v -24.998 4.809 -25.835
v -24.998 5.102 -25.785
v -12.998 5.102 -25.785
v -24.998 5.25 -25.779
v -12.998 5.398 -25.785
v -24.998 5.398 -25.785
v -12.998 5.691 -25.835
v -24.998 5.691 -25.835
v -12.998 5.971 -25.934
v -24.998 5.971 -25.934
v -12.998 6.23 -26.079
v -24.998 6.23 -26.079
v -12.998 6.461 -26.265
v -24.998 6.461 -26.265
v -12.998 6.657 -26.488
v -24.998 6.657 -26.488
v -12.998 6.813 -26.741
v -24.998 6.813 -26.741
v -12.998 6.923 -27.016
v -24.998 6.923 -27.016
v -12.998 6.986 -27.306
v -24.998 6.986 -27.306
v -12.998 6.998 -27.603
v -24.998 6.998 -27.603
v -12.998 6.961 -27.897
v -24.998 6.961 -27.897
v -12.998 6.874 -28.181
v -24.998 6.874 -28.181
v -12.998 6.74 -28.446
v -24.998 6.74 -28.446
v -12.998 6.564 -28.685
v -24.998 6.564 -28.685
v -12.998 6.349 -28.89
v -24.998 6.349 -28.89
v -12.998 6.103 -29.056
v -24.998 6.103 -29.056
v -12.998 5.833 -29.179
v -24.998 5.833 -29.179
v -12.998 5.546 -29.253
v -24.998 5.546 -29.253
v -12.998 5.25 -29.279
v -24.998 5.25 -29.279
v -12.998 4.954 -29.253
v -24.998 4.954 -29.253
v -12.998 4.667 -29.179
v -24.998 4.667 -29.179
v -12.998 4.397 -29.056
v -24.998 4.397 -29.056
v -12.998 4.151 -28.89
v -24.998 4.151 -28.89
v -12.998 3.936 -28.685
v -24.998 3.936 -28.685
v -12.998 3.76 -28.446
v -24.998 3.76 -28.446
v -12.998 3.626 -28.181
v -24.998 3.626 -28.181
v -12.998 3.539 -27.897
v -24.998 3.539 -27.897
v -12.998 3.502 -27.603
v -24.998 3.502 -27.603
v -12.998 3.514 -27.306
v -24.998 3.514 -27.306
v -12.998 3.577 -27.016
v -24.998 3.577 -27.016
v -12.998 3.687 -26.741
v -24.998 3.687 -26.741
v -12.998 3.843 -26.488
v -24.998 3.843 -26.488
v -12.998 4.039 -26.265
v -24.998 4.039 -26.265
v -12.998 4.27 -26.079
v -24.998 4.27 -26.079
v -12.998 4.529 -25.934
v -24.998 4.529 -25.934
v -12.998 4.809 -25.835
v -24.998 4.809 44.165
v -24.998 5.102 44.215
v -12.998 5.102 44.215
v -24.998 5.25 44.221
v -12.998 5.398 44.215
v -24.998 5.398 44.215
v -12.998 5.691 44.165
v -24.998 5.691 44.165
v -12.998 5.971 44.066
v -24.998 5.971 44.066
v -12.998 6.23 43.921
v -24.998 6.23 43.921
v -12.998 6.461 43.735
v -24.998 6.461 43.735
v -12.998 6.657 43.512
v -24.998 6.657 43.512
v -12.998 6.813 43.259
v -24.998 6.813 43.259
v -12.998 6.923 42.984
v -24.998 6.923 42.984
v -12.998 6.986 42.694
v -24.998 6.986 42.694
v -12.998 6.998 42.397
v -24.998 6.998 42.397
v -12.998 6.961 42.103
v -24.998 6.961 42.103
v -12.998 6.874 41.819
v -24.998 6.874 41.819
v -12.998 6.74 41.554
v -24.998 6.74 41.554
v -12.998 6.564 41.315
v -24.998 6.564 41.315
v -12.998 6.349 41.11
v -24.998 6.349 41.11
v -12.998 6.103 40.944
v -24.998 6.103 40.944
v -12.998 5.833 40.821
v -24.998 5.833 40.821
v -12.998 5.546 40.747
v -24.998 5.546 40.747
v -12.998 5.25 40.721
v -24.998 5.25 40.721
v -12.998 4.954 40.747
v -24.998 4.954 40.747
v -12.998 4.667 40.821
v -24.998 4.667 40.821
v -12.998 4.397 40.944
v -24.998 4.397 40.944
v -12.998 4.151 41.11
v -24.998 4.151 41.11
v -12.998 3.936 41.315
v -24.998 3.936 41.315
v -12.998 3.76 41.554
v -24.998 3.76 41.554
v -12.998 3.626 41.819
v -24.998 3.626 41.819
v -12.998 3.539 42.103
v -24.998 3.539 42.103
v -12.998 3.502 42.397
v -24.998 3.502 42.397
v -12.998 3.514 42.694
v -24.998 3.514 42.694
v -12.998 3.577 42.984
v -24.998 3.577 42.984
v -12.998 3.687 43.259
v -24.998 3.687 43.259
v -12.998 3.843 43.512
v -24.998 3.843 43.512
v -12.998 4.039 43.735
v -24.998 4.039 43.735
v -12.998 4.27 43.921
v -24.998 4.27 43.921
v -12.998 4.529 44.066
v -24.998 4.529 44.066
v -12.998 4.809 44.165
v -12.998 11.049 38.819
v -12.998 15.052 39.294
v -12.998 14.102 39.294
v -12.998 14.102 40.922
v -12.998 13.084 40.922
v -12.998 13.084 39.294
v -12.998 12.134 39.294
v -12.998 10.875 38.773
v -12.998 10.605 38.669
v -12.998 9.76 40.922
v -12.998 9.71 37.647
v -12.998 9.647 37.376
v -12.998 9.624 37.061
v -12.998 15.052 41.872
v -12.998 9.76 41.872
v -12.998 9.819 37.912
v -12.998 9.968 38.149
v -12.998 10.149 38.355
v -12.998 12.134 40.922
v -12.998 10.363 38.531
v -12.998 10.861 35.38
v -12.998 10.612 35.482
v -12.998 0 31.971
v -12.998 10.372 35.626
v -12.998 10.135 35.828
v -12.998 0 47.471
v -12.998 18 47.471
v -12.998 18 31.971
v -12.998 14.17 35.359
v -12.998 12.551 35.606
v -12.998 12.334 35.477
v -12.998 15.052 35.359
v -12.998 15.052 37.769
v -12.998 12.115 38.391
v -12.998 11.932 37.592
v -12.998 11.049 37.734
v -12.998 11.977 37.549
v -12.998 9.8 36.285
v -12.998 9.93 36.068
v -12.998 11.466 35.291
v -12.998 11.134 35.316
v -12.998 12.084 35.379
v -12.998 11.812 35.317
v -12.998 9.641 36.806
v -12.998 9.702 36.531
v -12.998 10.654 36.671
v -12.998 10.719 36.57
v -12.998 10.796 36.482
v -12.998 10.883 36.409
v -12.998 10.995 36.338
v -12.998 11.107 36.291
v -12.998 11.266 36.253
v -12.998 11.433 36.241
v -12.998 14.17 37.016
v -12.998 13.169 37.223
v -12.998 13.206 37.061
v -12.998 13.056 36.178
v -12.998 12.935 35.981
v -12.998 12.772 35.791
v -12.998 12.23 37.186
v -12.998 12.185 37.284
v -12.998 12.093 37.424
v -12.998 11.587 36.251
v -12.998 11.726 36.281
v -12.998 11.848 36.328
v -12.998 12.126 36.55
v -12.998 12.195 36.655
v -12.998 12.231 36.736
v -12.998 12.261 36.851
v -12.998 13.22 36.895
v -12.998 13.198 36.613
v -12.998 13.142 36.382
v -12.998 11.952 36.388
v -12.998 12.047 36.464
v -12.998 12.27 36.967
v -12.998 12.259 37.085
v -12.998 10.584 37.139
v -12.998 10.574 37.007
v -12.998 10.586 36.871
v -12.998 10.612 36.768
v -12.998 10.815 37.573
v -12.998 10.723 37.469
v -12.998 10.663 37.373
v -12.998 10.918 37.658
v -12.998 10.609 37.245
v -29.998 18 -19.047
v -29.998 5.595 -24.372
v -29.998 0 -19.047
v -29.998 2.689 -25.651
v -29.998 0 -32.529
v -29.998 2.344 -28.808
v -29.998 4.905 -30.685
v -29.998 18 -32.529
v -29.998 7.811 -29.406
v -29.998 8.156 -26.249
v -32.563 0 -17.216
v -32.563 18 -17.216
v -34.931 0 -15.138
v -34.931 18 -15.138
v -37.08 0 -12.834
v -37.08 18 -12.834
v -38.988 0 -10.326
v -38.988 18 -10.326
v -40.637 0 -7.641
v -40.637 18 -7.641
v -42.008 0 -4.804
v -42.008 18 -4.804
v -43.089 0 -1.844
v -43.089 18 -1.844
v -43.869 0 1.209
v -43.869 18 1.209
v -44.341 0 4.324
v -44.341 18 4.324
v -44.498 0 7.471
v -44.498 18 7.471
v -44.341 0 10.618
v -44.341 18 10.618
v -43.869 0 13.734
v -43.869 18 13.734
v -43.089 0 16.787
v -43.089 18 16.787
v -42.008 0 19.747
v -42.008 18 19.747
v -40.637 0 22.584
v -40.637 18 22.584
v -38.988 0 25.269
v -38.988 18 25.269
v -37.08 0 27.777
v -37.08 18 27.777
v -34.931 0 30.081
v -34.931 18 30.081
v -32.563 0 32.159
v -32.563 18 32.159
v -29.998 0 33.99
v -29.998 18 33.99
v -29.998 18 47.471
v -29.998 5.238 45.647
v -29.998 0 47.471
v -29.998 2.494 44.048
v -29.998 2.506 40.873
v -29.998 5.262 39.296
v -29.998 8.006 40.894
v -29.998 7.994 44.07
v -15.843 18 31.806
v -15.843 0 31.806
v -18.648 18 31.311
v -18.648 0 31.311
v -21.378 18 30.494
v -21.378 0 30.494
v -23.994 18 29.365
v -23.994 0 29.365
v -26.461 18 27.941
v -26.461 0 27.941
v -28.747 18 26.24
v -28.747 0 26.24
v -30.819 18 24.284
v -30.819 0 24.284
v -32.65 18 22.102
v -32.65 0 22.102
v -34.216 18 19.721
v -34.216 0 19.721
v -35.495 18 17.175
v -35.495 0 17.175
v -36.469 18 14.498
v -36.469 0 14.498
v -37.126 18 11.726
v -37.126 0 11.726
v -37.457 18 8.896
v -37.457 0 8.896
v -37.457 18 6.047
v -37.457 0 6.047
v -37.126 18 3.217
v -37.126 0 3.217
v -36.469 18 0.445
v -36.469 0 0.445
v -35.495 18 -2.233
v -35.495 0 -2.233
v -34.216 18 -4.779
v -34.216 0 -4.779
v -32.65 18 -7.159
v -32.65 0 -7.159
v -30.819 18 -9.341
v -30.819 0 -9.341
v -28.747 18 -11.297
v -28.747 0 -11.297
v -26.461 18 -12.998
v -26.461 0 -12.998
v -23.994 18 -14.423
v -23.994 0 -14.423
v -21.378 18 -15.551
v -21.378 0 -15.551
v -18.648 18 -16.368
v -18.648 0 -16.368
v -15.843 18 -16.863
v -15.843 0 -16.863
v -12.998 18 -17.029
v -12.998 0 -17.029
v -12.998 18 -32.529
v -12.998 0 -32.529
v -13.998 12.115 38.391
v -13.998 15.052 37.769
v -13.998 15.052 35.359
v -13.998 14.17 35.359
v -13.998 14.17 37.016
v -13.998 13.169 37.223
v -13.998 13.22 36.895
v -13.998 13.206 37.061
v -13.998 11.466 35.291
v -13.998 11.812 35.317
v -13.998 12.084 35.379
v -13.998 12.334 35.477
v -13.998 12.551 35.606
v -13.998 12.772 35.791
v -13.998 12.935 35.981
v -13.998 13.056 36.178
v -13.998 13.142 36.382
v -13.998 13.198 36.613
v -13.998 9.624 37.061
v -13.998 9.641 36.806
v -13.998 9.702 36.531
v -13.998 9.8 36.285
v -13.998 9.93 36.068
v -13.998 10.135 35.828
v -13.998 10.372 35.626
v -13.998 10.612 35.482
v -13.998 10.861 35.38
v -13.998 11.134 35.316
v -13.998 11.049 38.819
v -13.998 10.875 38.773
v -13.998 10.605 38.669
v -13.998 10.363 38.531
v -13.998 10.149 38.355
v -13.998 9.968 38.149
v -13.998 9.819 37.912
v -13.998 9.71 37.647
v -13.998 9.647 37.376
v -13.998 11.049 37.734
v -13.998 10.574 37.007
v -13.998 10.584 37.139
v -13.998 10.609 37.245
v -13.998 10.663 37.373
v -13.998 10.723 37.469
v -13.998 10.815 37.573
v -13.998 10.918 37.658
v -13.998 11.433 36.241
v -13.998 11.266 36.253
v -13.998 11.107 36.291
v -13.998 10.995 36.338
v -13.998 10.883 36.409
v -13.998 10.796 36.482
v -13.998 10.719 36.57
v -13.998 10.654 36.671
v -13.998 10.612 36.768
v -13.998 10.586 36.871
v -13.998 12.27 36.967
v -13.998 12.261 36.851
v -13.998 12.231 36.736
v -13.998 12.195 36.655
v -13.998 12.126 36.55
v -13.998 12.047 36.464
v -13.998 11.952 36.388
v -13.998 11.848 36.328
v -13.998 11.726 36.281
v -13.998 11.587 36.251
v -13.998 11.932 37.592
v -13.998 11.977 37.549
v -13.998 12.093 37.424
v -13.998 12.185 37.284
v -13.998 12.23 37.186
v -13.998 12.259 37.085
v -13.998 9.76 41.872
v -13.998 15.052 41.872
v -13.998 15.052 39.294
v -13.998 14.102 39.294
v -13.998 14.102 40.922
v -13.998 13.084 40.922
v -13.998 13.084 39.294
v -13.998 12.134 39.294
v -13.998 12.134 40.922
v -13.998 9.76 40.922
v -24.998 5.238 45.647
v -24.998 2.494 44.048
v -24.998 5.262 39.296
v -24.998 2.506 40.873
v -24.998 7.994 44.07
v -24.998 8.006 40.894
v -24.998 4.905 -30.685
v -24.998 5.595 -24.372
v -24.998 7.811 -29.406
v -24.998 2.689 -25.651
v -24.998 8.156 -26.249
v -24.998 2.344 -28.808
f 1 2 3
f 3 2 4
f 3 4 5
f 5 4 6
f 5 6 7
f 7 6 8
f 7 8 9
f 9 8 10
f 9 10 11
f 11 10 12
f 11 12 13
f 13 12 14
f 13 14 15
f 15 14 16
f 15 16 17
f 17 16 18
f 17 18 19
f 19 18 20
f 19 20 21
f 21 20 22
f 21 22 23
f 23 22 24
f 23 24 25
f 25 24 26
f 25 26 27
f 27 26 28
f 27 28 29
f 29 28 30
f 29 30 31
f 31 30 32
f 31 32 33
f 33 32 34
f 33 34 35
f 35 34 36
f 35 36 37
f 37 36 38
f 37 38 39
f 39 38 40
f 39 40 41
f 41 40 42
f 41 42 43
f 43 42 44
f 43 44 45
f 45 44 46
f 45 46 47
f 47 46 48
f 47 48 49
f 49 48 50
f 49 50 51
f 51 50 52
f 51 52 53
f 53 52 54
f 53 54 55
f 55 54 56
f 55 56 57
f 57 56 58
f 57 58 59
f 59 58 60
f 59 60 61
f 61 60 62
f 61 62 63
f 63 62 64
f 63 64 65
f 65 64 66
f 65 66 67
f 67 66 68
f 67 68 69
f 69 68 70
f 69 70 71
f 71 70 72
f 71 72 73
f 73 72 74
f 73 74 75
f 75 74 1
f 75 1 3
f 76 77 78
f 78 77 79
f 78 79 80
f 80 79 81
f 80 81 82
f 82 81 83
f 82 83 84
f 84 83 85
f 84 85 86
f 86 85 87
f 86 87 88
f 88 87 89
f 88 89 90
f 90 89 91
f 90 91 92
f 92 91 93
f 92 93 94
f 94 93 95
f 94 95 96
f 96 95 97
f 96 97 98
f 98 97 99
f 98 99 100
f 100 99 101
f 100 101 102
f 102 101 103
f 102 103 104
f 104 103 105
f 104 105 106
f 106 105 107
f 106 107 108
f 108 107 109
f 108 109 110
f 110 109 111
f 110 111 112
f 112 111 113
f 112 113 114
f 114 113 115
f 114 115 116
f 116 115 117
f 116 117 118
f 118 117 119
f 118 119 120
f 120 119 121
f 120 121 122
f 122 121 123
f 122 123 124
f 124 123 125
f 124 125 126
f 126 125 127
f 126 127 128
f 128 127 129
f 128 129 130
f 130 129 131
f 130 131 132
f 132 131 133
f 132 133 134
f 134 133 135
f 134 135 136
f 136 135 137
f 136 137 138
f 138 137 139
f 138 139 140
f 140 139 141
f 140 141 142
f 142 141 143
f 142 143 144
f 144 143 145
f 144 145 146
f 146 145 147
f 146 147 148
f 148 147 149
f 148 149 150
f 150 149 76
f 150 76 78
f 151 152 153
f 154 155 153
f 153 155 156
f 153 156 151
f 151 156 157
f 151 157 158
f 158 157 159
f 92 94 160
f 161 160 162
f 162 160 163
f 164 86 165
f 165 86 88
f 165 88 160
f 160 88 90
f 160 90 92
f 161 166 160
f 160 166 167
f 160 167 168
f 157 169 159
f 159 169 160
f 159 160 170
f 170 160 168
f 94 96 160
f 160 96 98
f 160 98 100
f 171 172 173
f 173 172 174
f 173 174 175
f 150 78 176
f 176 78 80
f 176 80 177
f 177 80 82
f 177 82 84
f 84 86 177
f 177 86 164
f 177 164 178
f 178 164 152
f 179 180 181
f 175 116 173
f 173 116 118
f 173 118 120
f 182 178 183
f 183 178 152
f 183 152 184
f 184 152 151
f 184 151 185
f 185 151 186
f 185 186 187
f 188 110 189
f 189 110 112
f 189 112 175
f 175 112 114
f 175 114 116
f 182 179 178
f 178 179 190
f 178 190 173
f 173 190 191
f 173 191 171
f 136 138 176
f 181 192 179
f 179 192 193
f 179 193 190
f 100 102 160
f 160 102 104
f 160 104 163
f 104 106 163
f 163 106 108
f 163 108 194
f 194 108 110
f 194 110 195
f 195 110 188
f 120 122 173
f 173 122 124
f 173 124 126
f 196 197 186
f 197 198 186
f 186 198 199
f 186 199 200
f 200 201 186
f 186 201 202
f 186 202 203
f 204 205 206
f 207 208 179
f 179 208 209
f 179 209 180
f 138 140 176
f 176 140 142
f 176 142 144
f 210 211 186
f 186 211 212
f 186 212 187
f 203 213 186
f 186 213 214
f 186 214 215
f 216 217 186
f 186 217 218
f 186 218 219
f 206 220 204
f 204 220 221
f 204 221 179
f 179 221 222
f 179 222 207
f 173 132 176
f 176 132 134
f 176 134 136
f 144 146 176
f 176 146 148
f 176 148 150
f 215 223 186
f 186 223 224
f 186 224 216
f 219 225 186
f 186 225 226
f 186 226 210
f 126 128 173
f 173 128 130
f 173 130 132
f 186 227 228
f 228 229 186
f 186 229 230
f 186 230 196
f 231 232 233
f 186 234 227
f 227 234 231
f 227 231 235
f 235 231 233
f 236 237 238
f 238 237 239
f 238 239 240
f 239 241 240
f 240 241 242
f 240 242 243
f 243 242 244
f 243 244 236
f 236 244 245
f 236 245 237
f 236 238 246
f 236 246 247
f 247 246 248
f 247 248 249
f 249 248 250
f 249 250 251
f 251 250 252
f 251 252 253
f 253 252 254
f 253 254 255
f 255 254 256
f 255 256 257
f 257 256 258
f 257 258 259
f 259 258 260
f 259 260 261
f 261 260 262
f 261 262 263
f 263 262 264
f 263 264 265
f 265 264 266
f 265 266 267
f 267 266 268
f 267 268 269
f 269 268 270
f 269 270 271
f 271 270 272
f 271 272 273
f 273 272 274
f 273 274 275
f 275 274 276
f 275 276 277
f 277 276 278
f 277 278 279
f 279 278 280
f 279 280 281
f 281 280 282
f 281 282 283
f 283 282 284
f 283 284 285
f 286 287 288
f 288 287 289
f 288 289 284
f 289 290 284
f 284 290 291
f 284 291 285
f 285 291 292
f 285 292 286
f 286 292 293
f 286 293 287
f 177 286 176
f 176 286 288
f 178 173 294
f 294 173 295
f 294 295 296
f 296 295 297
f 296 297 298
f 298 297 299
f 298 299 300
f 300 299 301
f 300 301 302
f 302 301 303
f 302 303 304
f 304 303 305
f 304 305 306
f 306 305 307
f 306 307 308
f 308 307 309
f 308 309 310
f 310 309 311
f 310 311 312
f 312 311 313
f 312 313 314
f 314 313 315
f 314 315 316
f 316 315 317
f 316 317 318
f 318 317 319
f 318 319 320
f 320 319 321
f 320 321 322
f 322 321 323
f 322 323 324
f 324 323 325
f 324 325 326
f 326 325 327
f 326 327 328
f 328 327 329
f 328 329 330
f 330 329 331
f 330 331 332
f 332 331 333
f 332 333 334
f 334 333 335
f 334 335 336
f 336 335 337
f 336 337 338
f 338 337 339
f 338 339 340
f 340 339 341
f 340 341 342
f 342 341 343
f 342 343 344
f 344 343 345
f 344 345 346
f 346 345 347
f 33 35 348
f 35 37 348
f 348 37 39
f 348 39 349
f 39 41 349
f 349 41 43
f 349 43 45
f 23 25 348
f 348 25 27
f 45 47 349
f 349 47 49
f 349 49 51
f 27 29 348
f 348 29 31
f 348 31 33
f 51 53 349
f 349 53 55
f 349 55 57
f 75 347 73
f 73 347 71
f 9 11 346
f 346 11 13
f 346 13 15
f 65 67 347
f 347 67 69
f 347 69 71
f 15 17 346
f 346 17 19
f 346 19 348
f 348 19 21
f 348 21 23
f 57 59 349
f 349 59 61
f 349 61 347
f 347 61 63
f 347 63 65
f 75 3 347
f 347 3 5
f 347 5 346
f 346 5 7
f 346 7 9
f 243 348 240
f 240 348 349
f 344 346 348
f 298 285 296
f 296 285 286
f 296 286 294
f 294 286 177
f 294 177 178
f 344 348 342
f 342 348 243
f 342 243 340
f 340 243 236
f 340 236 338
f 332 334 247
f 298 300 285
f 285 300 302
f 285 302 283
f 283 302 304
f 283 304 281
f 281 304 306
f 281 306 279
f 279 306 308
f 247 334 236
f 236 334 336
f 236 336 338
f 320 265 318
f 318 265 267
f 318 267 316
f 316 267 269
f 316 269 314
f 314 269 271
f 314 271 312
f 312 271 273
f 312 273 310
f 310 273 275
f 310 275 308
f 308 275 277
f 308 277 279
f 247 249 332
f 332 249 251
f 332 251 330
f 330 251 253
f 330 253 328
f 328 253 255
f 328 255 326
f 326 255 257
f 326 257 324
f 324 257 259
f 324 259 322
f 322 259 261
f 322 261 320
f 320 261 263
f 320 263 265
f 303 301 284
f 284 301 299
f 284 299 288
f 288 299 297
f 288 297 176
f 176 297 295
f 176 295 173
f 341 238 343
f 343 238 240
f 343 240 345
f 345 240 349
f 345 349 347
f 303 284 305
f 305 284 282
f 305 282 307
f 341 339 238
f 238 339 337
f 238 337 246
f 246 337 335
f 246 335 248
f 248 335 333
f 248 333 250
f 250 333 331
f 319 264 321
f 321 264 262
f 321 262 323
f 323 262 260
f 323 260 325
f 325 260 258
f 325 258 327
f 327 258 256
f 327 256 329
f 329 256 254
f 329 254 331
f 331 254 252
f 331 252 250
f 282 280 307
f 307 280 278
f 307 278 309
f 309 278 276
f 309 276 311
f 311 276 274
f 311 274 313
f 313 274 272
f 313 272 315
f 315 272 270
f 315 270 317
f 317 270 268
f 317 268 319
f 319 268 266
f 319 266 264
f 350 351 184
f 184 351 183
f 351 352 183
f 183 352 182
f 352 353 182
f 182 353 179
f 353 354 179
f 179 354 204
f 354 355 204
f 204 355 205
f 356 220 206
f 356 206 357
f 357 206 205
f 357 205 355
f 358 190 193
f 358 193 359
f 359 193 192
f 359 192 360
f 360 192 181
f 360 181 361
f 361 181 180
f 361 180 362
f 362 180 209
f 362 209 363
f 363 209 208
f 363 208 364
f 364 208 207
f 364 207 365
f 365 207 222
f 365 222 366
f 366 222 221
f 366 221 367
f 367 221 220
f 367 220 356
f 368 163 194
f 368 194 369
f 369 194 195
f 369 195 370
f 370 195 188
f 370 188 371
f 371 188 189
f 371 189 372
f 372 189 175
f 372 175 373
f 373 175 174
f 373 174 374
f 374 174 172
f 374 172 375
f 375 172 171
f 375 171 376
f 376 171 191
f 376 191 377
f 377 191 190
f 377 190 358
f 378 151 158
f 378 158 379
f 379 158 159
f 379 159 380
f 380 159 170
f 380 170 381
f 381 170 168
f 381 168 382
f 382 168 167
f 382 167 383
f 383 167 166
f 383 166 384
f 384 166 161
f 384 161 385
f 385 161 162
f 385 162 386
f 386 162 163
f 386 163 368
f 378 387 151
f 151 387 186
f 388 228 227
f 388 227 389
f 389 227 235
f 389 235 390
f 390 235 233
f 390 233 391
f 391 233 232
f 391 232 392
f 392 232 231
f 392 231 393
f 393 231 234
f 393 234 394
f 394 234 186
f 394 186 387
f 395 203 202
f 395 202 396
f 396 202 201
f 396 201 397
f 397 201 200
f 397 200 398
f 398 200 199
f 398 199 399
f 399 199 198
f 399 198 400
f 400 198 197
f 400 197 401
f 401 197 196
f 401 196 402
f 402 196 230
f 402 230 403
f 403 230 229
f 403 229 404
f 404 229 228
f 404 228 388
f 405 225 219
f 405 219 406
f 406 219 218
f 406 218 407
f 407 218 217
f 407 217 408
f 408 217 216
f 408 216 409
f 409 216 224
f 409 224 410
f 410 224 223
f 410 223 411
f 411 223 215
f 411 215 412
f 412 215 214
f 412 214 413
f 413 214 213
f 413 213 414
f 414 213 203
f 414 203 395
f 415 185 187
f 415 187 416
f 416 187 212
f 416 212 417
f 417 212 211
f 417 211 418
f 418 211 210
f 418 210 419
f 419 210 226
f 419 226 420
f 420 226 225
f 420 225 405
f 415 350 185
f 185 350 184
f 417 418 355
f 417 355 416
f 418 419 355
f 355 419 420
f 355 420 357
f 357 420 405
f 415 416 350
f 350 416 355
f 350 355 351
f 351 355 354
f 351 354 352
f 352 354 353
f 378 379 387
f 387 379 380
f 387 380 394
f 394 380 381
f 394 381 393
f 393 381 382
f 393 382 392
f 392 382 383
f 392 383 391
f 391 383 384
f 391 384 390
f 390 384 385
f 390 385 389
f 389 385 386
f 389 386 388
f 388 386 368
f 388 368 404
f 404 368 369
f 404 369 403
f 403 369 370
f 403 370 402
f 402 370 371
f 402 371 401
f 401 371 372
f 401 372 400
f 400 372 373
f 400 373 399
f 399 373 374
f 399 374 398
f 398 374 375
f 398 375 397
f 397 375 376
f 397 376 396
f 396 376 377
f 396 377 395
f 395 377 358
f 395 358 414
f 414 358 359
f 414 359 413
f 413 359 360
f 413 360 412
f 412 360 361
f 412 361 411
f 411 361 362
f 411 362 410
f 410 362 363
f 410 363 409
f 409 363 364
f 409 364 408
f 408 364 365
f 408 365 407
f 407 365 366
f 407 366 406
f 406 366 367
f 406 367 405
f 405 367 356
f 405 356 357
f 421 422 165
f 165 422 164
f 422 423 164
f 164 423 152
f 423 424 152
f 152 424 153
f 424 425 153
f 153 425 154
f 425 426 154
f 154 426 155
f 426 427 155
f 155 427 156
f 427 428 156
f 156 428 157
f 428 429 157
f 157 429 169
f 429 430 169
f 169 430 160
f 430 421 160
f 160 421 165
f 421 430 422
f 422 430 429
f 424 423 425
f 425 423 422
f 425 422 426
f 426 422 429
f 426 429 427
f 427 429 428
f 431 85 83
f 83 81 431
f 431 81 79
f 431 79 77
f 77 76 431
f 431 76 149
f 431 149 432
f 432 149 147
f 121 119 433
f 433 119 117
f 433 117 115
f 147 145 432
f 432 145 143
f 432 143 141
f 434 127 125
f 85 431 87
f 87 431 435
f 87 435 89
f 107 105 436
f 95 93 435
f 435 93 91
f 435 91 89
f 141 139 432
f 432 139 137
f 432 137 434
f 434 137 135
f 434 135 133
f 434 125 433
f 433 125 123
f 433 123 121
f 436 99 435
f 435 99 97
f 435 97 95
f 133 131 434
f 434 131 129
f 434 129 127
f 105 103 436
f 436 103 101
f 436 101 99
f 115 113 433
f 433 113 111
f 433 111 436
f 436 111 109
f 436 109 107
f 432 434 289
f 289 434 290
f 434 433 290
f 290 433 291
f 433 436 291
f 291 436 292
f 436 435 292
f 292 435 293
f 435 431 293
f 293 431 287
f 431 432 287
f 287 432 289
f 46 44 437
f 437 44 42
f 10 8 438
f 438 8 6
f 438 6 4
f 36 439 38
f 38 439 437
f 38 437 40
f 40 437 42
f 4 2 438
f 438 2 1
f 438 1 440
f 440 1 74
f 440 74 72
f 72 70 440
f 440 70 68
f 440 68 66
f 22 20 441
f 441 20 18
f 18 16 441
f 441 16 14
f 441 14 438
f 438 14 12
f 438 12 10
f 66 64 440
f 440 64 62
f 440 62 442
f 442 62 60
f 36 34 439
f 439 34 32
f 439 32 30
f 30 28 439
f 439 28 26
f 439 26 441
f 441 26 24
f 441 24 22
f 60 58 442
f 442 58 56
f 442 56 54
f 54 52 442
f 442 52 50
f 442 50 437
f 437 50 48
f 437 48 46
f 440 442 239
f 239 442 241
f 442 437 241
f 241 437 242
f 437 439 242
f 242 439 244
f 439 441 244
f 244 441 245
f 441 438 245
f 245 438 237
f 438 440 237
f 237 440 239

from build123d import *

# Parameters (mm, degrees)
BOSS_EXTRUDE1_DEPTH = 18
SKETCH2_R           = 1.75
CUT_EXTRUDE1_DEPTH  = 32.5
CUT_EXTRUDE2_DEPTH  = 1
CUT_EXTRUDE3_DEPTH  = 5


with BuildPart() as part:
    # Sketch1 → Boss-Extrude1 (new body)
    with BuildSketch(Plane(origin=(0, 0, 0), x_dir=(1, 0, 0), z_dir=(0, 1, 0))):
        with BuildLine():
            Line((-12.998275301, 32.528571429), (-29.998275301, 32.528571429))
            Line((-29.998275301, 32.528571429), (-29.998275301, 19.047432641))
            ThreePointArc((-29.998275301, 19.047432641), (-21.855641496, 22.757647896), (-12.998275301, 24.028571429))
            Line((-12.998275301, 24.028571429), (-12.998275301, 32.528571429))
        make_face()
        with BuildLine():
            ThreePointArc((-12.998275301, 24.028571429), (-21.855641496, 22.757647896), (-29.998275301, 19.047432641))
            ThreePointArc((-29.998275301, 19.047432641), (-44.498275301, -7.471428571), (-29.998275301, -33.990289784))
            ThreePointArc((-29.998275301, -33.990289784), (-21.855641496, -37.700505039), (-12.998275301, -38.971428571))
            Line((-12.998275301, -38.971428571), (-12.998275301, -31.971428571))
            ThreePointArc((-12.998275301, -31.971428571), (-37.498275301, -7.471428571), (-12.998275301, 17.028571429))
            Line((-12.998275301, 17.028571429), (-12.998275301, 24.028571429))
        make_face()
        with BuildLine():
            Line((-29.998275301, -33.990289784), (-29.998275301, -47.471428571))
            Line((-29.998275301, -47.471428571), (-12.998275301, -47.471428571))
            Line((-12.998275301, -47.471428571), (-12.998275301, -38.971428571))
            ThreePointArc((-12.998275301, -38.971428571), (-21.855641496, -37.700505039), (-29.998275301, -33.990289784))
        make_face()
    extrude(amount=BOSS_EXTRUDE1_DEPTH)

    # Sketch2 → Cut-Extrude1 (cut, through all)
    with BuildSketch(Plane(origin=(-12.998275301, 0, 0), x_dir=(0, 0, -1), z_dir=(1, 0, 0))):
        with Locations((-42.471428571, 5.25)):
            Circle(SKETCH2_R)
        with Locations((27.528571429, 5.25)):
            Circle(SKETCH2_R)
    extrude(amount=-CUT_EXTRUDE1_DEPTH, mode=Mode.SUBTRACT)

    # Sketch3 → Cut-Extrude2 (cut)
    with BuildSketch(Plane(origin=(-12.998275301, 0, 0), x_dir=(0, 0, -1), z_dir=(1, 0, 0))):
        Polygon((-41.872123333, 15.051635835), (-39.29413188, 15.051635835), (-39.29413188, 14.10184951), (-40.922337009, 14.10184951), (-40.922337009, 13.084221305), (-39.29413188, 13.084221305), (-39.29413188, 12.13443498), (-40.922337009, 12.13443498), (-40.922337009, 9.759969168), (-41.872123333, 9.759969168), align=None)
        with BuildLine():
            Line((-37.768749602, 15.051635835), (-35.359302821, 15.051635835))
            Line((-35.359302821, 15.051635835), (-35.359302821, 14.16969139))
            Line((-35.359302821, 14.16969139), (-37.016128742, 14.16969139))
            Line((-37.016128742, 14.16969139), (-37.222834471, 13.169023655))
            add(Edge.make_bspline(
                [(-37.222834471, 13.169023655), (-37.194667857, 13.176868413), (-37.139117506, 13.192339887), (-37.055430833, 13.207855818), (-36.974326785, 13.217912751), (-36.921106803, 13.219254212), (-36.895285393, 13.219905065)],
                knots=[0, 0, 0, 0, 8.7675e-05, 0.000172914, 0.000255092, 0.000332539, 0.000332539, 0.000332539, 0.000332539], degree=3))
            add(Edge.make_bspline(
                [(-36.895285393, 13.219905065), (-36.839017834, 13.218615727), (-36.728102081, 13.216074157), (-36.56584641, 13.191946365), (-36.410477019, 13.153945825), (-36.262469357, 13.099749215), (-36.121968006, 13.029210927), (-35.988802653, 12.943879371), (-35.862809858, 12.843604675), (-35.746227784, 12.728324059), (-35.639107304, 12.601743331), (-35.545972157, 12.464832881), (-35.466428929, 12.319544917), (-35.403162996, 12.164976334), (-35.353228128, 12.002097925), (-35.317144077, 11.830805314), (-35.295805775, 11.650895492), (-35.292928436, 11.528155884), (-35.29146094, 11.465556441)],
                knots=[0, 0, 0, 0, 0.000168708, 0.00033256, 0.000490931, 0.00064788, 0.00080432, 0.000961637, 0.001121557, 0.001286466, 0.001452728, 0.001618259, 0.001782383, 0.001948726, 0.00211839, 0.002292819, 0.002473214, 0.002660986, 0.002660986, 0.002660986, 0.002660986], degree=3))
            add(Edge.make_bspline(
                [(-35.29146094, 11.465556441), (-35.293254243, 11.402246349), (-35.296792955, 11.277317032), (-35.319879804, 11.093626745), (-35.360628507, 10.917692919), (-35.416600928, 10.749044582), (-35.490341009, 10.588921261), (-35.579023549, 10.435664197), (-35.684147931, 10.290410967), (-35.804682523, 10.154650595), (-35.935719436, 10.030563008), (-36.075242816, 9.921402921), (-36.22227247, 9.829545591), (-36.376811944, 9.75530934), (-36.537974597, 9.696574939), (-36.705809344, 9.653819098), (-36.881131839, 9.629301), (-37.000153034, 9.625975643), (-37.060649976, 9.624285407)],
                knots=[0, 0, 0, 0, 0.000189935, 0.000374797, 0.00055428, 0.000730936, 0.00090692, 0.001082188, 0.001261361, 0.001443849, 0.001626066, 0.00180206, 0.001974425, 0.002145103, 0.002315455, 0.002488223, 0.002663769, 0.002845232, 0.002845232, 0.002845232, 0.002845232], degree=3))
            add(Edge.make_bspline(
                [(-37.060649976, 9.624285407), (-37.11475059, 9.625668125), (-37.221448324, 9.628395135), (-37.378609401, 9.645156773), (-37.530130131, 9.674791505), (-37.675206106, 9.717680636), (-37.815363767, 9.770467365), (-37.94898285, 9.836487145), (-38.076797617, 9.914482872), (-38.198445122, 10.00303112), (-38.311948765, 10.102777287), (-38.415542863, 10.211966653), (-38.509854588, 10.329222939), (-38.592865818, 10.455992731), (-38.664316336, 10.592088734), (-38.727680113, 10.735907025), (-38.779543999, 10.888949526), (-38.805863427, 10.99504709), (-38.819238718, 11.048964895)],
                knots=[0, 0, 0, 0, 0.000162309, 0.000320108, 0.00047353, 0.000624818, 0.000773452, 0.00092231, 0.001071202, 0.001222162, 0.001373137, 0.001523844, 0.001673169, 0.001823995, 0.001977637, 0.002133811, 0.002295051, 0.002461661, 0.002461661, 0.002461661, 0.002461661], degree=3))
            Line((-38.819238718, 11.048964895), (-37.733768633, 11.048964895))
            add(Edge.make_bspline(
                [(-37.733768633, 11.048964895), (-37.713926213, 11.011602052), (-37.675364736, 10.938991631), (-37.60201228, 10.842590387), (-37.519898863, 10.760383548), (-37.429765192, 10.691567935), (-37.331027257, 10.640012448), (-37.227708443, 10.600915152), (-37.118510798, 10.578322273), (-37.044142381, 10.575497939), (-37.006588478, 10.574071732)],
                knots=[0, 0, 0, 0, 0.000126748, 0.00024632, 0.000361751, 0.000474538, 0.000585031, 0.000694707, 0.000805098, 0.000917705, 0.000917705, 0.000917705, 0.000917705], degree=3))
            add(Edge.make_bspline(
                [(-37.006588478, 10.574071732), (-36.980413911, 10.575056541), (-36.92891501, 10.576994168), (-36.853039524, 10.587244701), (-36.780613038, 10.60665898), (-36.71109708, 10.633543242), (-36.644304912, 10.667070955), (-36.581194023, 10.709397506), (-36.520666397, 10.758116937), (-36.46364351, 10.814022648), (-36.411997211, 10.876344513), (-36.366709056, 10.943313604), (-36.3262152, 11.013441856), (-36.296220781, 11.089507223), (-36.271657889, 11.169238367), (-36.253568781, 11.253236725), (-36.2427585, 11.341600399), (-36.241757757, 11.401923802), (-36.241247265, 11.43269553)],
                knots=[0, 0, 0, 0, 7.8557e-05, 0.000154562, 0.000229126, 0.000302949, 0.000377852, 0.000452822, 0.000530465, 0.000610671, 0.000691969, 0.000772824, 0.000853029, 0.000934327, 0.001017484, 0.001103143, 0.001191762, 0.001284039, 0.001284039, 0.001284039, 0.001284039], degree=3))
            add(Edge.make_bspline(
                [(-36.241247265, 11.43269553), (-36.24183975, 11.462752977), (-36.242993035, 11.521260526), (-36.252533243, 11.607170565), (-36.269600491, 11.688683645), (-36.292854763, 11.766424094), (-36.322623008, 11.839919836), (-36.359001793, 11.909608351), (-36.402146532, 11.975137391), (-36.452288859, 12.035172848), (-36.505760122, 12.090239076), (-36.56320544, 12.138399561), (-36.624107261, 12.178369419), (-36.686573137, 12.213264269), (-36.753096479, 12.238659979), (-36.822181447, 12.256149068), (-36.893755387, 12.268981858), (-36.942574418, 12.269735832), (-36.967367391, 12.270118741)],
                knots=[0, 0, 0, 0, 9.0159e-05, 0.000175496, 0.000258862, 0.000339682, 0.000418616, 0.000496375, 0.000575167, 0.000653481, 0.000730688, 0.0008052, 0.000877818, 0.000948966, 0.00101944, 0.00109066, 0.001162633, 0.001236903, 0.001236903, 0.001236903, 0.001236903], degree=3))
            add(Edge.make_bspline(
                [(-36.967367391, 12.270118741), (-36.994298321, 12.269096861), (-37.048273682, 12.267048796), (-37.12846756, 12.250384238), (-37.207694523, 12.22341473), (-37.286395154, 12.186206021), (-37.363788212, 12.13751156), (-37.44191614, 12.080398541), (-37.518163827, 12.010717161), (-37.566644228, 11.95881831), (-37.591724696, 11.931969368)],
                knots=[0, 0, 0, 0, 8.0736e-05, 0.000161813, 0.000244611, 0.000331384, 0.000422288, 0.00051854, 0.000621363, 0.000731571, 0.000731571, 0.000731571, 0.000731571], degree=3))
            Line((-37.591724696, 11.931969368), (-38.390986848, 12.115354451))
            Line((-38.390986848, 12.115354451), (-37.768749602, 15.051635835))
        make_face()
    extrude(amount=-CUT_EXTRUDE2_DEPTH, mode=Mode.SUBTRACT)

    # Sketch4 → Cut-Extrude3 (cut)
    with BuildSketch(Plane.ZY.offset(29.998275301)):
        Polygon((-25.65109293, 2.689061145), (-24.371994073, 5.595474648), (-26.249472572, 8.156413503), (-29.406049928, 7.810938855), (-30.685148784, 4.904525352), (-28.807670285, 2.343586497), align=None)
        Polygon((44.048403814, 2.493828304), (45.646830899, 5.237614774), (44.069855656, 7.993786469), (40.894453329, 8.006171696), (39.296026244, 5.262385226), (40.873001487, 2.506213531), align=None)
    extrude(amount=-CUT_EXTRUDE3_DEPTH, mode=Mode.SUBTRACT)


solid = part.part
